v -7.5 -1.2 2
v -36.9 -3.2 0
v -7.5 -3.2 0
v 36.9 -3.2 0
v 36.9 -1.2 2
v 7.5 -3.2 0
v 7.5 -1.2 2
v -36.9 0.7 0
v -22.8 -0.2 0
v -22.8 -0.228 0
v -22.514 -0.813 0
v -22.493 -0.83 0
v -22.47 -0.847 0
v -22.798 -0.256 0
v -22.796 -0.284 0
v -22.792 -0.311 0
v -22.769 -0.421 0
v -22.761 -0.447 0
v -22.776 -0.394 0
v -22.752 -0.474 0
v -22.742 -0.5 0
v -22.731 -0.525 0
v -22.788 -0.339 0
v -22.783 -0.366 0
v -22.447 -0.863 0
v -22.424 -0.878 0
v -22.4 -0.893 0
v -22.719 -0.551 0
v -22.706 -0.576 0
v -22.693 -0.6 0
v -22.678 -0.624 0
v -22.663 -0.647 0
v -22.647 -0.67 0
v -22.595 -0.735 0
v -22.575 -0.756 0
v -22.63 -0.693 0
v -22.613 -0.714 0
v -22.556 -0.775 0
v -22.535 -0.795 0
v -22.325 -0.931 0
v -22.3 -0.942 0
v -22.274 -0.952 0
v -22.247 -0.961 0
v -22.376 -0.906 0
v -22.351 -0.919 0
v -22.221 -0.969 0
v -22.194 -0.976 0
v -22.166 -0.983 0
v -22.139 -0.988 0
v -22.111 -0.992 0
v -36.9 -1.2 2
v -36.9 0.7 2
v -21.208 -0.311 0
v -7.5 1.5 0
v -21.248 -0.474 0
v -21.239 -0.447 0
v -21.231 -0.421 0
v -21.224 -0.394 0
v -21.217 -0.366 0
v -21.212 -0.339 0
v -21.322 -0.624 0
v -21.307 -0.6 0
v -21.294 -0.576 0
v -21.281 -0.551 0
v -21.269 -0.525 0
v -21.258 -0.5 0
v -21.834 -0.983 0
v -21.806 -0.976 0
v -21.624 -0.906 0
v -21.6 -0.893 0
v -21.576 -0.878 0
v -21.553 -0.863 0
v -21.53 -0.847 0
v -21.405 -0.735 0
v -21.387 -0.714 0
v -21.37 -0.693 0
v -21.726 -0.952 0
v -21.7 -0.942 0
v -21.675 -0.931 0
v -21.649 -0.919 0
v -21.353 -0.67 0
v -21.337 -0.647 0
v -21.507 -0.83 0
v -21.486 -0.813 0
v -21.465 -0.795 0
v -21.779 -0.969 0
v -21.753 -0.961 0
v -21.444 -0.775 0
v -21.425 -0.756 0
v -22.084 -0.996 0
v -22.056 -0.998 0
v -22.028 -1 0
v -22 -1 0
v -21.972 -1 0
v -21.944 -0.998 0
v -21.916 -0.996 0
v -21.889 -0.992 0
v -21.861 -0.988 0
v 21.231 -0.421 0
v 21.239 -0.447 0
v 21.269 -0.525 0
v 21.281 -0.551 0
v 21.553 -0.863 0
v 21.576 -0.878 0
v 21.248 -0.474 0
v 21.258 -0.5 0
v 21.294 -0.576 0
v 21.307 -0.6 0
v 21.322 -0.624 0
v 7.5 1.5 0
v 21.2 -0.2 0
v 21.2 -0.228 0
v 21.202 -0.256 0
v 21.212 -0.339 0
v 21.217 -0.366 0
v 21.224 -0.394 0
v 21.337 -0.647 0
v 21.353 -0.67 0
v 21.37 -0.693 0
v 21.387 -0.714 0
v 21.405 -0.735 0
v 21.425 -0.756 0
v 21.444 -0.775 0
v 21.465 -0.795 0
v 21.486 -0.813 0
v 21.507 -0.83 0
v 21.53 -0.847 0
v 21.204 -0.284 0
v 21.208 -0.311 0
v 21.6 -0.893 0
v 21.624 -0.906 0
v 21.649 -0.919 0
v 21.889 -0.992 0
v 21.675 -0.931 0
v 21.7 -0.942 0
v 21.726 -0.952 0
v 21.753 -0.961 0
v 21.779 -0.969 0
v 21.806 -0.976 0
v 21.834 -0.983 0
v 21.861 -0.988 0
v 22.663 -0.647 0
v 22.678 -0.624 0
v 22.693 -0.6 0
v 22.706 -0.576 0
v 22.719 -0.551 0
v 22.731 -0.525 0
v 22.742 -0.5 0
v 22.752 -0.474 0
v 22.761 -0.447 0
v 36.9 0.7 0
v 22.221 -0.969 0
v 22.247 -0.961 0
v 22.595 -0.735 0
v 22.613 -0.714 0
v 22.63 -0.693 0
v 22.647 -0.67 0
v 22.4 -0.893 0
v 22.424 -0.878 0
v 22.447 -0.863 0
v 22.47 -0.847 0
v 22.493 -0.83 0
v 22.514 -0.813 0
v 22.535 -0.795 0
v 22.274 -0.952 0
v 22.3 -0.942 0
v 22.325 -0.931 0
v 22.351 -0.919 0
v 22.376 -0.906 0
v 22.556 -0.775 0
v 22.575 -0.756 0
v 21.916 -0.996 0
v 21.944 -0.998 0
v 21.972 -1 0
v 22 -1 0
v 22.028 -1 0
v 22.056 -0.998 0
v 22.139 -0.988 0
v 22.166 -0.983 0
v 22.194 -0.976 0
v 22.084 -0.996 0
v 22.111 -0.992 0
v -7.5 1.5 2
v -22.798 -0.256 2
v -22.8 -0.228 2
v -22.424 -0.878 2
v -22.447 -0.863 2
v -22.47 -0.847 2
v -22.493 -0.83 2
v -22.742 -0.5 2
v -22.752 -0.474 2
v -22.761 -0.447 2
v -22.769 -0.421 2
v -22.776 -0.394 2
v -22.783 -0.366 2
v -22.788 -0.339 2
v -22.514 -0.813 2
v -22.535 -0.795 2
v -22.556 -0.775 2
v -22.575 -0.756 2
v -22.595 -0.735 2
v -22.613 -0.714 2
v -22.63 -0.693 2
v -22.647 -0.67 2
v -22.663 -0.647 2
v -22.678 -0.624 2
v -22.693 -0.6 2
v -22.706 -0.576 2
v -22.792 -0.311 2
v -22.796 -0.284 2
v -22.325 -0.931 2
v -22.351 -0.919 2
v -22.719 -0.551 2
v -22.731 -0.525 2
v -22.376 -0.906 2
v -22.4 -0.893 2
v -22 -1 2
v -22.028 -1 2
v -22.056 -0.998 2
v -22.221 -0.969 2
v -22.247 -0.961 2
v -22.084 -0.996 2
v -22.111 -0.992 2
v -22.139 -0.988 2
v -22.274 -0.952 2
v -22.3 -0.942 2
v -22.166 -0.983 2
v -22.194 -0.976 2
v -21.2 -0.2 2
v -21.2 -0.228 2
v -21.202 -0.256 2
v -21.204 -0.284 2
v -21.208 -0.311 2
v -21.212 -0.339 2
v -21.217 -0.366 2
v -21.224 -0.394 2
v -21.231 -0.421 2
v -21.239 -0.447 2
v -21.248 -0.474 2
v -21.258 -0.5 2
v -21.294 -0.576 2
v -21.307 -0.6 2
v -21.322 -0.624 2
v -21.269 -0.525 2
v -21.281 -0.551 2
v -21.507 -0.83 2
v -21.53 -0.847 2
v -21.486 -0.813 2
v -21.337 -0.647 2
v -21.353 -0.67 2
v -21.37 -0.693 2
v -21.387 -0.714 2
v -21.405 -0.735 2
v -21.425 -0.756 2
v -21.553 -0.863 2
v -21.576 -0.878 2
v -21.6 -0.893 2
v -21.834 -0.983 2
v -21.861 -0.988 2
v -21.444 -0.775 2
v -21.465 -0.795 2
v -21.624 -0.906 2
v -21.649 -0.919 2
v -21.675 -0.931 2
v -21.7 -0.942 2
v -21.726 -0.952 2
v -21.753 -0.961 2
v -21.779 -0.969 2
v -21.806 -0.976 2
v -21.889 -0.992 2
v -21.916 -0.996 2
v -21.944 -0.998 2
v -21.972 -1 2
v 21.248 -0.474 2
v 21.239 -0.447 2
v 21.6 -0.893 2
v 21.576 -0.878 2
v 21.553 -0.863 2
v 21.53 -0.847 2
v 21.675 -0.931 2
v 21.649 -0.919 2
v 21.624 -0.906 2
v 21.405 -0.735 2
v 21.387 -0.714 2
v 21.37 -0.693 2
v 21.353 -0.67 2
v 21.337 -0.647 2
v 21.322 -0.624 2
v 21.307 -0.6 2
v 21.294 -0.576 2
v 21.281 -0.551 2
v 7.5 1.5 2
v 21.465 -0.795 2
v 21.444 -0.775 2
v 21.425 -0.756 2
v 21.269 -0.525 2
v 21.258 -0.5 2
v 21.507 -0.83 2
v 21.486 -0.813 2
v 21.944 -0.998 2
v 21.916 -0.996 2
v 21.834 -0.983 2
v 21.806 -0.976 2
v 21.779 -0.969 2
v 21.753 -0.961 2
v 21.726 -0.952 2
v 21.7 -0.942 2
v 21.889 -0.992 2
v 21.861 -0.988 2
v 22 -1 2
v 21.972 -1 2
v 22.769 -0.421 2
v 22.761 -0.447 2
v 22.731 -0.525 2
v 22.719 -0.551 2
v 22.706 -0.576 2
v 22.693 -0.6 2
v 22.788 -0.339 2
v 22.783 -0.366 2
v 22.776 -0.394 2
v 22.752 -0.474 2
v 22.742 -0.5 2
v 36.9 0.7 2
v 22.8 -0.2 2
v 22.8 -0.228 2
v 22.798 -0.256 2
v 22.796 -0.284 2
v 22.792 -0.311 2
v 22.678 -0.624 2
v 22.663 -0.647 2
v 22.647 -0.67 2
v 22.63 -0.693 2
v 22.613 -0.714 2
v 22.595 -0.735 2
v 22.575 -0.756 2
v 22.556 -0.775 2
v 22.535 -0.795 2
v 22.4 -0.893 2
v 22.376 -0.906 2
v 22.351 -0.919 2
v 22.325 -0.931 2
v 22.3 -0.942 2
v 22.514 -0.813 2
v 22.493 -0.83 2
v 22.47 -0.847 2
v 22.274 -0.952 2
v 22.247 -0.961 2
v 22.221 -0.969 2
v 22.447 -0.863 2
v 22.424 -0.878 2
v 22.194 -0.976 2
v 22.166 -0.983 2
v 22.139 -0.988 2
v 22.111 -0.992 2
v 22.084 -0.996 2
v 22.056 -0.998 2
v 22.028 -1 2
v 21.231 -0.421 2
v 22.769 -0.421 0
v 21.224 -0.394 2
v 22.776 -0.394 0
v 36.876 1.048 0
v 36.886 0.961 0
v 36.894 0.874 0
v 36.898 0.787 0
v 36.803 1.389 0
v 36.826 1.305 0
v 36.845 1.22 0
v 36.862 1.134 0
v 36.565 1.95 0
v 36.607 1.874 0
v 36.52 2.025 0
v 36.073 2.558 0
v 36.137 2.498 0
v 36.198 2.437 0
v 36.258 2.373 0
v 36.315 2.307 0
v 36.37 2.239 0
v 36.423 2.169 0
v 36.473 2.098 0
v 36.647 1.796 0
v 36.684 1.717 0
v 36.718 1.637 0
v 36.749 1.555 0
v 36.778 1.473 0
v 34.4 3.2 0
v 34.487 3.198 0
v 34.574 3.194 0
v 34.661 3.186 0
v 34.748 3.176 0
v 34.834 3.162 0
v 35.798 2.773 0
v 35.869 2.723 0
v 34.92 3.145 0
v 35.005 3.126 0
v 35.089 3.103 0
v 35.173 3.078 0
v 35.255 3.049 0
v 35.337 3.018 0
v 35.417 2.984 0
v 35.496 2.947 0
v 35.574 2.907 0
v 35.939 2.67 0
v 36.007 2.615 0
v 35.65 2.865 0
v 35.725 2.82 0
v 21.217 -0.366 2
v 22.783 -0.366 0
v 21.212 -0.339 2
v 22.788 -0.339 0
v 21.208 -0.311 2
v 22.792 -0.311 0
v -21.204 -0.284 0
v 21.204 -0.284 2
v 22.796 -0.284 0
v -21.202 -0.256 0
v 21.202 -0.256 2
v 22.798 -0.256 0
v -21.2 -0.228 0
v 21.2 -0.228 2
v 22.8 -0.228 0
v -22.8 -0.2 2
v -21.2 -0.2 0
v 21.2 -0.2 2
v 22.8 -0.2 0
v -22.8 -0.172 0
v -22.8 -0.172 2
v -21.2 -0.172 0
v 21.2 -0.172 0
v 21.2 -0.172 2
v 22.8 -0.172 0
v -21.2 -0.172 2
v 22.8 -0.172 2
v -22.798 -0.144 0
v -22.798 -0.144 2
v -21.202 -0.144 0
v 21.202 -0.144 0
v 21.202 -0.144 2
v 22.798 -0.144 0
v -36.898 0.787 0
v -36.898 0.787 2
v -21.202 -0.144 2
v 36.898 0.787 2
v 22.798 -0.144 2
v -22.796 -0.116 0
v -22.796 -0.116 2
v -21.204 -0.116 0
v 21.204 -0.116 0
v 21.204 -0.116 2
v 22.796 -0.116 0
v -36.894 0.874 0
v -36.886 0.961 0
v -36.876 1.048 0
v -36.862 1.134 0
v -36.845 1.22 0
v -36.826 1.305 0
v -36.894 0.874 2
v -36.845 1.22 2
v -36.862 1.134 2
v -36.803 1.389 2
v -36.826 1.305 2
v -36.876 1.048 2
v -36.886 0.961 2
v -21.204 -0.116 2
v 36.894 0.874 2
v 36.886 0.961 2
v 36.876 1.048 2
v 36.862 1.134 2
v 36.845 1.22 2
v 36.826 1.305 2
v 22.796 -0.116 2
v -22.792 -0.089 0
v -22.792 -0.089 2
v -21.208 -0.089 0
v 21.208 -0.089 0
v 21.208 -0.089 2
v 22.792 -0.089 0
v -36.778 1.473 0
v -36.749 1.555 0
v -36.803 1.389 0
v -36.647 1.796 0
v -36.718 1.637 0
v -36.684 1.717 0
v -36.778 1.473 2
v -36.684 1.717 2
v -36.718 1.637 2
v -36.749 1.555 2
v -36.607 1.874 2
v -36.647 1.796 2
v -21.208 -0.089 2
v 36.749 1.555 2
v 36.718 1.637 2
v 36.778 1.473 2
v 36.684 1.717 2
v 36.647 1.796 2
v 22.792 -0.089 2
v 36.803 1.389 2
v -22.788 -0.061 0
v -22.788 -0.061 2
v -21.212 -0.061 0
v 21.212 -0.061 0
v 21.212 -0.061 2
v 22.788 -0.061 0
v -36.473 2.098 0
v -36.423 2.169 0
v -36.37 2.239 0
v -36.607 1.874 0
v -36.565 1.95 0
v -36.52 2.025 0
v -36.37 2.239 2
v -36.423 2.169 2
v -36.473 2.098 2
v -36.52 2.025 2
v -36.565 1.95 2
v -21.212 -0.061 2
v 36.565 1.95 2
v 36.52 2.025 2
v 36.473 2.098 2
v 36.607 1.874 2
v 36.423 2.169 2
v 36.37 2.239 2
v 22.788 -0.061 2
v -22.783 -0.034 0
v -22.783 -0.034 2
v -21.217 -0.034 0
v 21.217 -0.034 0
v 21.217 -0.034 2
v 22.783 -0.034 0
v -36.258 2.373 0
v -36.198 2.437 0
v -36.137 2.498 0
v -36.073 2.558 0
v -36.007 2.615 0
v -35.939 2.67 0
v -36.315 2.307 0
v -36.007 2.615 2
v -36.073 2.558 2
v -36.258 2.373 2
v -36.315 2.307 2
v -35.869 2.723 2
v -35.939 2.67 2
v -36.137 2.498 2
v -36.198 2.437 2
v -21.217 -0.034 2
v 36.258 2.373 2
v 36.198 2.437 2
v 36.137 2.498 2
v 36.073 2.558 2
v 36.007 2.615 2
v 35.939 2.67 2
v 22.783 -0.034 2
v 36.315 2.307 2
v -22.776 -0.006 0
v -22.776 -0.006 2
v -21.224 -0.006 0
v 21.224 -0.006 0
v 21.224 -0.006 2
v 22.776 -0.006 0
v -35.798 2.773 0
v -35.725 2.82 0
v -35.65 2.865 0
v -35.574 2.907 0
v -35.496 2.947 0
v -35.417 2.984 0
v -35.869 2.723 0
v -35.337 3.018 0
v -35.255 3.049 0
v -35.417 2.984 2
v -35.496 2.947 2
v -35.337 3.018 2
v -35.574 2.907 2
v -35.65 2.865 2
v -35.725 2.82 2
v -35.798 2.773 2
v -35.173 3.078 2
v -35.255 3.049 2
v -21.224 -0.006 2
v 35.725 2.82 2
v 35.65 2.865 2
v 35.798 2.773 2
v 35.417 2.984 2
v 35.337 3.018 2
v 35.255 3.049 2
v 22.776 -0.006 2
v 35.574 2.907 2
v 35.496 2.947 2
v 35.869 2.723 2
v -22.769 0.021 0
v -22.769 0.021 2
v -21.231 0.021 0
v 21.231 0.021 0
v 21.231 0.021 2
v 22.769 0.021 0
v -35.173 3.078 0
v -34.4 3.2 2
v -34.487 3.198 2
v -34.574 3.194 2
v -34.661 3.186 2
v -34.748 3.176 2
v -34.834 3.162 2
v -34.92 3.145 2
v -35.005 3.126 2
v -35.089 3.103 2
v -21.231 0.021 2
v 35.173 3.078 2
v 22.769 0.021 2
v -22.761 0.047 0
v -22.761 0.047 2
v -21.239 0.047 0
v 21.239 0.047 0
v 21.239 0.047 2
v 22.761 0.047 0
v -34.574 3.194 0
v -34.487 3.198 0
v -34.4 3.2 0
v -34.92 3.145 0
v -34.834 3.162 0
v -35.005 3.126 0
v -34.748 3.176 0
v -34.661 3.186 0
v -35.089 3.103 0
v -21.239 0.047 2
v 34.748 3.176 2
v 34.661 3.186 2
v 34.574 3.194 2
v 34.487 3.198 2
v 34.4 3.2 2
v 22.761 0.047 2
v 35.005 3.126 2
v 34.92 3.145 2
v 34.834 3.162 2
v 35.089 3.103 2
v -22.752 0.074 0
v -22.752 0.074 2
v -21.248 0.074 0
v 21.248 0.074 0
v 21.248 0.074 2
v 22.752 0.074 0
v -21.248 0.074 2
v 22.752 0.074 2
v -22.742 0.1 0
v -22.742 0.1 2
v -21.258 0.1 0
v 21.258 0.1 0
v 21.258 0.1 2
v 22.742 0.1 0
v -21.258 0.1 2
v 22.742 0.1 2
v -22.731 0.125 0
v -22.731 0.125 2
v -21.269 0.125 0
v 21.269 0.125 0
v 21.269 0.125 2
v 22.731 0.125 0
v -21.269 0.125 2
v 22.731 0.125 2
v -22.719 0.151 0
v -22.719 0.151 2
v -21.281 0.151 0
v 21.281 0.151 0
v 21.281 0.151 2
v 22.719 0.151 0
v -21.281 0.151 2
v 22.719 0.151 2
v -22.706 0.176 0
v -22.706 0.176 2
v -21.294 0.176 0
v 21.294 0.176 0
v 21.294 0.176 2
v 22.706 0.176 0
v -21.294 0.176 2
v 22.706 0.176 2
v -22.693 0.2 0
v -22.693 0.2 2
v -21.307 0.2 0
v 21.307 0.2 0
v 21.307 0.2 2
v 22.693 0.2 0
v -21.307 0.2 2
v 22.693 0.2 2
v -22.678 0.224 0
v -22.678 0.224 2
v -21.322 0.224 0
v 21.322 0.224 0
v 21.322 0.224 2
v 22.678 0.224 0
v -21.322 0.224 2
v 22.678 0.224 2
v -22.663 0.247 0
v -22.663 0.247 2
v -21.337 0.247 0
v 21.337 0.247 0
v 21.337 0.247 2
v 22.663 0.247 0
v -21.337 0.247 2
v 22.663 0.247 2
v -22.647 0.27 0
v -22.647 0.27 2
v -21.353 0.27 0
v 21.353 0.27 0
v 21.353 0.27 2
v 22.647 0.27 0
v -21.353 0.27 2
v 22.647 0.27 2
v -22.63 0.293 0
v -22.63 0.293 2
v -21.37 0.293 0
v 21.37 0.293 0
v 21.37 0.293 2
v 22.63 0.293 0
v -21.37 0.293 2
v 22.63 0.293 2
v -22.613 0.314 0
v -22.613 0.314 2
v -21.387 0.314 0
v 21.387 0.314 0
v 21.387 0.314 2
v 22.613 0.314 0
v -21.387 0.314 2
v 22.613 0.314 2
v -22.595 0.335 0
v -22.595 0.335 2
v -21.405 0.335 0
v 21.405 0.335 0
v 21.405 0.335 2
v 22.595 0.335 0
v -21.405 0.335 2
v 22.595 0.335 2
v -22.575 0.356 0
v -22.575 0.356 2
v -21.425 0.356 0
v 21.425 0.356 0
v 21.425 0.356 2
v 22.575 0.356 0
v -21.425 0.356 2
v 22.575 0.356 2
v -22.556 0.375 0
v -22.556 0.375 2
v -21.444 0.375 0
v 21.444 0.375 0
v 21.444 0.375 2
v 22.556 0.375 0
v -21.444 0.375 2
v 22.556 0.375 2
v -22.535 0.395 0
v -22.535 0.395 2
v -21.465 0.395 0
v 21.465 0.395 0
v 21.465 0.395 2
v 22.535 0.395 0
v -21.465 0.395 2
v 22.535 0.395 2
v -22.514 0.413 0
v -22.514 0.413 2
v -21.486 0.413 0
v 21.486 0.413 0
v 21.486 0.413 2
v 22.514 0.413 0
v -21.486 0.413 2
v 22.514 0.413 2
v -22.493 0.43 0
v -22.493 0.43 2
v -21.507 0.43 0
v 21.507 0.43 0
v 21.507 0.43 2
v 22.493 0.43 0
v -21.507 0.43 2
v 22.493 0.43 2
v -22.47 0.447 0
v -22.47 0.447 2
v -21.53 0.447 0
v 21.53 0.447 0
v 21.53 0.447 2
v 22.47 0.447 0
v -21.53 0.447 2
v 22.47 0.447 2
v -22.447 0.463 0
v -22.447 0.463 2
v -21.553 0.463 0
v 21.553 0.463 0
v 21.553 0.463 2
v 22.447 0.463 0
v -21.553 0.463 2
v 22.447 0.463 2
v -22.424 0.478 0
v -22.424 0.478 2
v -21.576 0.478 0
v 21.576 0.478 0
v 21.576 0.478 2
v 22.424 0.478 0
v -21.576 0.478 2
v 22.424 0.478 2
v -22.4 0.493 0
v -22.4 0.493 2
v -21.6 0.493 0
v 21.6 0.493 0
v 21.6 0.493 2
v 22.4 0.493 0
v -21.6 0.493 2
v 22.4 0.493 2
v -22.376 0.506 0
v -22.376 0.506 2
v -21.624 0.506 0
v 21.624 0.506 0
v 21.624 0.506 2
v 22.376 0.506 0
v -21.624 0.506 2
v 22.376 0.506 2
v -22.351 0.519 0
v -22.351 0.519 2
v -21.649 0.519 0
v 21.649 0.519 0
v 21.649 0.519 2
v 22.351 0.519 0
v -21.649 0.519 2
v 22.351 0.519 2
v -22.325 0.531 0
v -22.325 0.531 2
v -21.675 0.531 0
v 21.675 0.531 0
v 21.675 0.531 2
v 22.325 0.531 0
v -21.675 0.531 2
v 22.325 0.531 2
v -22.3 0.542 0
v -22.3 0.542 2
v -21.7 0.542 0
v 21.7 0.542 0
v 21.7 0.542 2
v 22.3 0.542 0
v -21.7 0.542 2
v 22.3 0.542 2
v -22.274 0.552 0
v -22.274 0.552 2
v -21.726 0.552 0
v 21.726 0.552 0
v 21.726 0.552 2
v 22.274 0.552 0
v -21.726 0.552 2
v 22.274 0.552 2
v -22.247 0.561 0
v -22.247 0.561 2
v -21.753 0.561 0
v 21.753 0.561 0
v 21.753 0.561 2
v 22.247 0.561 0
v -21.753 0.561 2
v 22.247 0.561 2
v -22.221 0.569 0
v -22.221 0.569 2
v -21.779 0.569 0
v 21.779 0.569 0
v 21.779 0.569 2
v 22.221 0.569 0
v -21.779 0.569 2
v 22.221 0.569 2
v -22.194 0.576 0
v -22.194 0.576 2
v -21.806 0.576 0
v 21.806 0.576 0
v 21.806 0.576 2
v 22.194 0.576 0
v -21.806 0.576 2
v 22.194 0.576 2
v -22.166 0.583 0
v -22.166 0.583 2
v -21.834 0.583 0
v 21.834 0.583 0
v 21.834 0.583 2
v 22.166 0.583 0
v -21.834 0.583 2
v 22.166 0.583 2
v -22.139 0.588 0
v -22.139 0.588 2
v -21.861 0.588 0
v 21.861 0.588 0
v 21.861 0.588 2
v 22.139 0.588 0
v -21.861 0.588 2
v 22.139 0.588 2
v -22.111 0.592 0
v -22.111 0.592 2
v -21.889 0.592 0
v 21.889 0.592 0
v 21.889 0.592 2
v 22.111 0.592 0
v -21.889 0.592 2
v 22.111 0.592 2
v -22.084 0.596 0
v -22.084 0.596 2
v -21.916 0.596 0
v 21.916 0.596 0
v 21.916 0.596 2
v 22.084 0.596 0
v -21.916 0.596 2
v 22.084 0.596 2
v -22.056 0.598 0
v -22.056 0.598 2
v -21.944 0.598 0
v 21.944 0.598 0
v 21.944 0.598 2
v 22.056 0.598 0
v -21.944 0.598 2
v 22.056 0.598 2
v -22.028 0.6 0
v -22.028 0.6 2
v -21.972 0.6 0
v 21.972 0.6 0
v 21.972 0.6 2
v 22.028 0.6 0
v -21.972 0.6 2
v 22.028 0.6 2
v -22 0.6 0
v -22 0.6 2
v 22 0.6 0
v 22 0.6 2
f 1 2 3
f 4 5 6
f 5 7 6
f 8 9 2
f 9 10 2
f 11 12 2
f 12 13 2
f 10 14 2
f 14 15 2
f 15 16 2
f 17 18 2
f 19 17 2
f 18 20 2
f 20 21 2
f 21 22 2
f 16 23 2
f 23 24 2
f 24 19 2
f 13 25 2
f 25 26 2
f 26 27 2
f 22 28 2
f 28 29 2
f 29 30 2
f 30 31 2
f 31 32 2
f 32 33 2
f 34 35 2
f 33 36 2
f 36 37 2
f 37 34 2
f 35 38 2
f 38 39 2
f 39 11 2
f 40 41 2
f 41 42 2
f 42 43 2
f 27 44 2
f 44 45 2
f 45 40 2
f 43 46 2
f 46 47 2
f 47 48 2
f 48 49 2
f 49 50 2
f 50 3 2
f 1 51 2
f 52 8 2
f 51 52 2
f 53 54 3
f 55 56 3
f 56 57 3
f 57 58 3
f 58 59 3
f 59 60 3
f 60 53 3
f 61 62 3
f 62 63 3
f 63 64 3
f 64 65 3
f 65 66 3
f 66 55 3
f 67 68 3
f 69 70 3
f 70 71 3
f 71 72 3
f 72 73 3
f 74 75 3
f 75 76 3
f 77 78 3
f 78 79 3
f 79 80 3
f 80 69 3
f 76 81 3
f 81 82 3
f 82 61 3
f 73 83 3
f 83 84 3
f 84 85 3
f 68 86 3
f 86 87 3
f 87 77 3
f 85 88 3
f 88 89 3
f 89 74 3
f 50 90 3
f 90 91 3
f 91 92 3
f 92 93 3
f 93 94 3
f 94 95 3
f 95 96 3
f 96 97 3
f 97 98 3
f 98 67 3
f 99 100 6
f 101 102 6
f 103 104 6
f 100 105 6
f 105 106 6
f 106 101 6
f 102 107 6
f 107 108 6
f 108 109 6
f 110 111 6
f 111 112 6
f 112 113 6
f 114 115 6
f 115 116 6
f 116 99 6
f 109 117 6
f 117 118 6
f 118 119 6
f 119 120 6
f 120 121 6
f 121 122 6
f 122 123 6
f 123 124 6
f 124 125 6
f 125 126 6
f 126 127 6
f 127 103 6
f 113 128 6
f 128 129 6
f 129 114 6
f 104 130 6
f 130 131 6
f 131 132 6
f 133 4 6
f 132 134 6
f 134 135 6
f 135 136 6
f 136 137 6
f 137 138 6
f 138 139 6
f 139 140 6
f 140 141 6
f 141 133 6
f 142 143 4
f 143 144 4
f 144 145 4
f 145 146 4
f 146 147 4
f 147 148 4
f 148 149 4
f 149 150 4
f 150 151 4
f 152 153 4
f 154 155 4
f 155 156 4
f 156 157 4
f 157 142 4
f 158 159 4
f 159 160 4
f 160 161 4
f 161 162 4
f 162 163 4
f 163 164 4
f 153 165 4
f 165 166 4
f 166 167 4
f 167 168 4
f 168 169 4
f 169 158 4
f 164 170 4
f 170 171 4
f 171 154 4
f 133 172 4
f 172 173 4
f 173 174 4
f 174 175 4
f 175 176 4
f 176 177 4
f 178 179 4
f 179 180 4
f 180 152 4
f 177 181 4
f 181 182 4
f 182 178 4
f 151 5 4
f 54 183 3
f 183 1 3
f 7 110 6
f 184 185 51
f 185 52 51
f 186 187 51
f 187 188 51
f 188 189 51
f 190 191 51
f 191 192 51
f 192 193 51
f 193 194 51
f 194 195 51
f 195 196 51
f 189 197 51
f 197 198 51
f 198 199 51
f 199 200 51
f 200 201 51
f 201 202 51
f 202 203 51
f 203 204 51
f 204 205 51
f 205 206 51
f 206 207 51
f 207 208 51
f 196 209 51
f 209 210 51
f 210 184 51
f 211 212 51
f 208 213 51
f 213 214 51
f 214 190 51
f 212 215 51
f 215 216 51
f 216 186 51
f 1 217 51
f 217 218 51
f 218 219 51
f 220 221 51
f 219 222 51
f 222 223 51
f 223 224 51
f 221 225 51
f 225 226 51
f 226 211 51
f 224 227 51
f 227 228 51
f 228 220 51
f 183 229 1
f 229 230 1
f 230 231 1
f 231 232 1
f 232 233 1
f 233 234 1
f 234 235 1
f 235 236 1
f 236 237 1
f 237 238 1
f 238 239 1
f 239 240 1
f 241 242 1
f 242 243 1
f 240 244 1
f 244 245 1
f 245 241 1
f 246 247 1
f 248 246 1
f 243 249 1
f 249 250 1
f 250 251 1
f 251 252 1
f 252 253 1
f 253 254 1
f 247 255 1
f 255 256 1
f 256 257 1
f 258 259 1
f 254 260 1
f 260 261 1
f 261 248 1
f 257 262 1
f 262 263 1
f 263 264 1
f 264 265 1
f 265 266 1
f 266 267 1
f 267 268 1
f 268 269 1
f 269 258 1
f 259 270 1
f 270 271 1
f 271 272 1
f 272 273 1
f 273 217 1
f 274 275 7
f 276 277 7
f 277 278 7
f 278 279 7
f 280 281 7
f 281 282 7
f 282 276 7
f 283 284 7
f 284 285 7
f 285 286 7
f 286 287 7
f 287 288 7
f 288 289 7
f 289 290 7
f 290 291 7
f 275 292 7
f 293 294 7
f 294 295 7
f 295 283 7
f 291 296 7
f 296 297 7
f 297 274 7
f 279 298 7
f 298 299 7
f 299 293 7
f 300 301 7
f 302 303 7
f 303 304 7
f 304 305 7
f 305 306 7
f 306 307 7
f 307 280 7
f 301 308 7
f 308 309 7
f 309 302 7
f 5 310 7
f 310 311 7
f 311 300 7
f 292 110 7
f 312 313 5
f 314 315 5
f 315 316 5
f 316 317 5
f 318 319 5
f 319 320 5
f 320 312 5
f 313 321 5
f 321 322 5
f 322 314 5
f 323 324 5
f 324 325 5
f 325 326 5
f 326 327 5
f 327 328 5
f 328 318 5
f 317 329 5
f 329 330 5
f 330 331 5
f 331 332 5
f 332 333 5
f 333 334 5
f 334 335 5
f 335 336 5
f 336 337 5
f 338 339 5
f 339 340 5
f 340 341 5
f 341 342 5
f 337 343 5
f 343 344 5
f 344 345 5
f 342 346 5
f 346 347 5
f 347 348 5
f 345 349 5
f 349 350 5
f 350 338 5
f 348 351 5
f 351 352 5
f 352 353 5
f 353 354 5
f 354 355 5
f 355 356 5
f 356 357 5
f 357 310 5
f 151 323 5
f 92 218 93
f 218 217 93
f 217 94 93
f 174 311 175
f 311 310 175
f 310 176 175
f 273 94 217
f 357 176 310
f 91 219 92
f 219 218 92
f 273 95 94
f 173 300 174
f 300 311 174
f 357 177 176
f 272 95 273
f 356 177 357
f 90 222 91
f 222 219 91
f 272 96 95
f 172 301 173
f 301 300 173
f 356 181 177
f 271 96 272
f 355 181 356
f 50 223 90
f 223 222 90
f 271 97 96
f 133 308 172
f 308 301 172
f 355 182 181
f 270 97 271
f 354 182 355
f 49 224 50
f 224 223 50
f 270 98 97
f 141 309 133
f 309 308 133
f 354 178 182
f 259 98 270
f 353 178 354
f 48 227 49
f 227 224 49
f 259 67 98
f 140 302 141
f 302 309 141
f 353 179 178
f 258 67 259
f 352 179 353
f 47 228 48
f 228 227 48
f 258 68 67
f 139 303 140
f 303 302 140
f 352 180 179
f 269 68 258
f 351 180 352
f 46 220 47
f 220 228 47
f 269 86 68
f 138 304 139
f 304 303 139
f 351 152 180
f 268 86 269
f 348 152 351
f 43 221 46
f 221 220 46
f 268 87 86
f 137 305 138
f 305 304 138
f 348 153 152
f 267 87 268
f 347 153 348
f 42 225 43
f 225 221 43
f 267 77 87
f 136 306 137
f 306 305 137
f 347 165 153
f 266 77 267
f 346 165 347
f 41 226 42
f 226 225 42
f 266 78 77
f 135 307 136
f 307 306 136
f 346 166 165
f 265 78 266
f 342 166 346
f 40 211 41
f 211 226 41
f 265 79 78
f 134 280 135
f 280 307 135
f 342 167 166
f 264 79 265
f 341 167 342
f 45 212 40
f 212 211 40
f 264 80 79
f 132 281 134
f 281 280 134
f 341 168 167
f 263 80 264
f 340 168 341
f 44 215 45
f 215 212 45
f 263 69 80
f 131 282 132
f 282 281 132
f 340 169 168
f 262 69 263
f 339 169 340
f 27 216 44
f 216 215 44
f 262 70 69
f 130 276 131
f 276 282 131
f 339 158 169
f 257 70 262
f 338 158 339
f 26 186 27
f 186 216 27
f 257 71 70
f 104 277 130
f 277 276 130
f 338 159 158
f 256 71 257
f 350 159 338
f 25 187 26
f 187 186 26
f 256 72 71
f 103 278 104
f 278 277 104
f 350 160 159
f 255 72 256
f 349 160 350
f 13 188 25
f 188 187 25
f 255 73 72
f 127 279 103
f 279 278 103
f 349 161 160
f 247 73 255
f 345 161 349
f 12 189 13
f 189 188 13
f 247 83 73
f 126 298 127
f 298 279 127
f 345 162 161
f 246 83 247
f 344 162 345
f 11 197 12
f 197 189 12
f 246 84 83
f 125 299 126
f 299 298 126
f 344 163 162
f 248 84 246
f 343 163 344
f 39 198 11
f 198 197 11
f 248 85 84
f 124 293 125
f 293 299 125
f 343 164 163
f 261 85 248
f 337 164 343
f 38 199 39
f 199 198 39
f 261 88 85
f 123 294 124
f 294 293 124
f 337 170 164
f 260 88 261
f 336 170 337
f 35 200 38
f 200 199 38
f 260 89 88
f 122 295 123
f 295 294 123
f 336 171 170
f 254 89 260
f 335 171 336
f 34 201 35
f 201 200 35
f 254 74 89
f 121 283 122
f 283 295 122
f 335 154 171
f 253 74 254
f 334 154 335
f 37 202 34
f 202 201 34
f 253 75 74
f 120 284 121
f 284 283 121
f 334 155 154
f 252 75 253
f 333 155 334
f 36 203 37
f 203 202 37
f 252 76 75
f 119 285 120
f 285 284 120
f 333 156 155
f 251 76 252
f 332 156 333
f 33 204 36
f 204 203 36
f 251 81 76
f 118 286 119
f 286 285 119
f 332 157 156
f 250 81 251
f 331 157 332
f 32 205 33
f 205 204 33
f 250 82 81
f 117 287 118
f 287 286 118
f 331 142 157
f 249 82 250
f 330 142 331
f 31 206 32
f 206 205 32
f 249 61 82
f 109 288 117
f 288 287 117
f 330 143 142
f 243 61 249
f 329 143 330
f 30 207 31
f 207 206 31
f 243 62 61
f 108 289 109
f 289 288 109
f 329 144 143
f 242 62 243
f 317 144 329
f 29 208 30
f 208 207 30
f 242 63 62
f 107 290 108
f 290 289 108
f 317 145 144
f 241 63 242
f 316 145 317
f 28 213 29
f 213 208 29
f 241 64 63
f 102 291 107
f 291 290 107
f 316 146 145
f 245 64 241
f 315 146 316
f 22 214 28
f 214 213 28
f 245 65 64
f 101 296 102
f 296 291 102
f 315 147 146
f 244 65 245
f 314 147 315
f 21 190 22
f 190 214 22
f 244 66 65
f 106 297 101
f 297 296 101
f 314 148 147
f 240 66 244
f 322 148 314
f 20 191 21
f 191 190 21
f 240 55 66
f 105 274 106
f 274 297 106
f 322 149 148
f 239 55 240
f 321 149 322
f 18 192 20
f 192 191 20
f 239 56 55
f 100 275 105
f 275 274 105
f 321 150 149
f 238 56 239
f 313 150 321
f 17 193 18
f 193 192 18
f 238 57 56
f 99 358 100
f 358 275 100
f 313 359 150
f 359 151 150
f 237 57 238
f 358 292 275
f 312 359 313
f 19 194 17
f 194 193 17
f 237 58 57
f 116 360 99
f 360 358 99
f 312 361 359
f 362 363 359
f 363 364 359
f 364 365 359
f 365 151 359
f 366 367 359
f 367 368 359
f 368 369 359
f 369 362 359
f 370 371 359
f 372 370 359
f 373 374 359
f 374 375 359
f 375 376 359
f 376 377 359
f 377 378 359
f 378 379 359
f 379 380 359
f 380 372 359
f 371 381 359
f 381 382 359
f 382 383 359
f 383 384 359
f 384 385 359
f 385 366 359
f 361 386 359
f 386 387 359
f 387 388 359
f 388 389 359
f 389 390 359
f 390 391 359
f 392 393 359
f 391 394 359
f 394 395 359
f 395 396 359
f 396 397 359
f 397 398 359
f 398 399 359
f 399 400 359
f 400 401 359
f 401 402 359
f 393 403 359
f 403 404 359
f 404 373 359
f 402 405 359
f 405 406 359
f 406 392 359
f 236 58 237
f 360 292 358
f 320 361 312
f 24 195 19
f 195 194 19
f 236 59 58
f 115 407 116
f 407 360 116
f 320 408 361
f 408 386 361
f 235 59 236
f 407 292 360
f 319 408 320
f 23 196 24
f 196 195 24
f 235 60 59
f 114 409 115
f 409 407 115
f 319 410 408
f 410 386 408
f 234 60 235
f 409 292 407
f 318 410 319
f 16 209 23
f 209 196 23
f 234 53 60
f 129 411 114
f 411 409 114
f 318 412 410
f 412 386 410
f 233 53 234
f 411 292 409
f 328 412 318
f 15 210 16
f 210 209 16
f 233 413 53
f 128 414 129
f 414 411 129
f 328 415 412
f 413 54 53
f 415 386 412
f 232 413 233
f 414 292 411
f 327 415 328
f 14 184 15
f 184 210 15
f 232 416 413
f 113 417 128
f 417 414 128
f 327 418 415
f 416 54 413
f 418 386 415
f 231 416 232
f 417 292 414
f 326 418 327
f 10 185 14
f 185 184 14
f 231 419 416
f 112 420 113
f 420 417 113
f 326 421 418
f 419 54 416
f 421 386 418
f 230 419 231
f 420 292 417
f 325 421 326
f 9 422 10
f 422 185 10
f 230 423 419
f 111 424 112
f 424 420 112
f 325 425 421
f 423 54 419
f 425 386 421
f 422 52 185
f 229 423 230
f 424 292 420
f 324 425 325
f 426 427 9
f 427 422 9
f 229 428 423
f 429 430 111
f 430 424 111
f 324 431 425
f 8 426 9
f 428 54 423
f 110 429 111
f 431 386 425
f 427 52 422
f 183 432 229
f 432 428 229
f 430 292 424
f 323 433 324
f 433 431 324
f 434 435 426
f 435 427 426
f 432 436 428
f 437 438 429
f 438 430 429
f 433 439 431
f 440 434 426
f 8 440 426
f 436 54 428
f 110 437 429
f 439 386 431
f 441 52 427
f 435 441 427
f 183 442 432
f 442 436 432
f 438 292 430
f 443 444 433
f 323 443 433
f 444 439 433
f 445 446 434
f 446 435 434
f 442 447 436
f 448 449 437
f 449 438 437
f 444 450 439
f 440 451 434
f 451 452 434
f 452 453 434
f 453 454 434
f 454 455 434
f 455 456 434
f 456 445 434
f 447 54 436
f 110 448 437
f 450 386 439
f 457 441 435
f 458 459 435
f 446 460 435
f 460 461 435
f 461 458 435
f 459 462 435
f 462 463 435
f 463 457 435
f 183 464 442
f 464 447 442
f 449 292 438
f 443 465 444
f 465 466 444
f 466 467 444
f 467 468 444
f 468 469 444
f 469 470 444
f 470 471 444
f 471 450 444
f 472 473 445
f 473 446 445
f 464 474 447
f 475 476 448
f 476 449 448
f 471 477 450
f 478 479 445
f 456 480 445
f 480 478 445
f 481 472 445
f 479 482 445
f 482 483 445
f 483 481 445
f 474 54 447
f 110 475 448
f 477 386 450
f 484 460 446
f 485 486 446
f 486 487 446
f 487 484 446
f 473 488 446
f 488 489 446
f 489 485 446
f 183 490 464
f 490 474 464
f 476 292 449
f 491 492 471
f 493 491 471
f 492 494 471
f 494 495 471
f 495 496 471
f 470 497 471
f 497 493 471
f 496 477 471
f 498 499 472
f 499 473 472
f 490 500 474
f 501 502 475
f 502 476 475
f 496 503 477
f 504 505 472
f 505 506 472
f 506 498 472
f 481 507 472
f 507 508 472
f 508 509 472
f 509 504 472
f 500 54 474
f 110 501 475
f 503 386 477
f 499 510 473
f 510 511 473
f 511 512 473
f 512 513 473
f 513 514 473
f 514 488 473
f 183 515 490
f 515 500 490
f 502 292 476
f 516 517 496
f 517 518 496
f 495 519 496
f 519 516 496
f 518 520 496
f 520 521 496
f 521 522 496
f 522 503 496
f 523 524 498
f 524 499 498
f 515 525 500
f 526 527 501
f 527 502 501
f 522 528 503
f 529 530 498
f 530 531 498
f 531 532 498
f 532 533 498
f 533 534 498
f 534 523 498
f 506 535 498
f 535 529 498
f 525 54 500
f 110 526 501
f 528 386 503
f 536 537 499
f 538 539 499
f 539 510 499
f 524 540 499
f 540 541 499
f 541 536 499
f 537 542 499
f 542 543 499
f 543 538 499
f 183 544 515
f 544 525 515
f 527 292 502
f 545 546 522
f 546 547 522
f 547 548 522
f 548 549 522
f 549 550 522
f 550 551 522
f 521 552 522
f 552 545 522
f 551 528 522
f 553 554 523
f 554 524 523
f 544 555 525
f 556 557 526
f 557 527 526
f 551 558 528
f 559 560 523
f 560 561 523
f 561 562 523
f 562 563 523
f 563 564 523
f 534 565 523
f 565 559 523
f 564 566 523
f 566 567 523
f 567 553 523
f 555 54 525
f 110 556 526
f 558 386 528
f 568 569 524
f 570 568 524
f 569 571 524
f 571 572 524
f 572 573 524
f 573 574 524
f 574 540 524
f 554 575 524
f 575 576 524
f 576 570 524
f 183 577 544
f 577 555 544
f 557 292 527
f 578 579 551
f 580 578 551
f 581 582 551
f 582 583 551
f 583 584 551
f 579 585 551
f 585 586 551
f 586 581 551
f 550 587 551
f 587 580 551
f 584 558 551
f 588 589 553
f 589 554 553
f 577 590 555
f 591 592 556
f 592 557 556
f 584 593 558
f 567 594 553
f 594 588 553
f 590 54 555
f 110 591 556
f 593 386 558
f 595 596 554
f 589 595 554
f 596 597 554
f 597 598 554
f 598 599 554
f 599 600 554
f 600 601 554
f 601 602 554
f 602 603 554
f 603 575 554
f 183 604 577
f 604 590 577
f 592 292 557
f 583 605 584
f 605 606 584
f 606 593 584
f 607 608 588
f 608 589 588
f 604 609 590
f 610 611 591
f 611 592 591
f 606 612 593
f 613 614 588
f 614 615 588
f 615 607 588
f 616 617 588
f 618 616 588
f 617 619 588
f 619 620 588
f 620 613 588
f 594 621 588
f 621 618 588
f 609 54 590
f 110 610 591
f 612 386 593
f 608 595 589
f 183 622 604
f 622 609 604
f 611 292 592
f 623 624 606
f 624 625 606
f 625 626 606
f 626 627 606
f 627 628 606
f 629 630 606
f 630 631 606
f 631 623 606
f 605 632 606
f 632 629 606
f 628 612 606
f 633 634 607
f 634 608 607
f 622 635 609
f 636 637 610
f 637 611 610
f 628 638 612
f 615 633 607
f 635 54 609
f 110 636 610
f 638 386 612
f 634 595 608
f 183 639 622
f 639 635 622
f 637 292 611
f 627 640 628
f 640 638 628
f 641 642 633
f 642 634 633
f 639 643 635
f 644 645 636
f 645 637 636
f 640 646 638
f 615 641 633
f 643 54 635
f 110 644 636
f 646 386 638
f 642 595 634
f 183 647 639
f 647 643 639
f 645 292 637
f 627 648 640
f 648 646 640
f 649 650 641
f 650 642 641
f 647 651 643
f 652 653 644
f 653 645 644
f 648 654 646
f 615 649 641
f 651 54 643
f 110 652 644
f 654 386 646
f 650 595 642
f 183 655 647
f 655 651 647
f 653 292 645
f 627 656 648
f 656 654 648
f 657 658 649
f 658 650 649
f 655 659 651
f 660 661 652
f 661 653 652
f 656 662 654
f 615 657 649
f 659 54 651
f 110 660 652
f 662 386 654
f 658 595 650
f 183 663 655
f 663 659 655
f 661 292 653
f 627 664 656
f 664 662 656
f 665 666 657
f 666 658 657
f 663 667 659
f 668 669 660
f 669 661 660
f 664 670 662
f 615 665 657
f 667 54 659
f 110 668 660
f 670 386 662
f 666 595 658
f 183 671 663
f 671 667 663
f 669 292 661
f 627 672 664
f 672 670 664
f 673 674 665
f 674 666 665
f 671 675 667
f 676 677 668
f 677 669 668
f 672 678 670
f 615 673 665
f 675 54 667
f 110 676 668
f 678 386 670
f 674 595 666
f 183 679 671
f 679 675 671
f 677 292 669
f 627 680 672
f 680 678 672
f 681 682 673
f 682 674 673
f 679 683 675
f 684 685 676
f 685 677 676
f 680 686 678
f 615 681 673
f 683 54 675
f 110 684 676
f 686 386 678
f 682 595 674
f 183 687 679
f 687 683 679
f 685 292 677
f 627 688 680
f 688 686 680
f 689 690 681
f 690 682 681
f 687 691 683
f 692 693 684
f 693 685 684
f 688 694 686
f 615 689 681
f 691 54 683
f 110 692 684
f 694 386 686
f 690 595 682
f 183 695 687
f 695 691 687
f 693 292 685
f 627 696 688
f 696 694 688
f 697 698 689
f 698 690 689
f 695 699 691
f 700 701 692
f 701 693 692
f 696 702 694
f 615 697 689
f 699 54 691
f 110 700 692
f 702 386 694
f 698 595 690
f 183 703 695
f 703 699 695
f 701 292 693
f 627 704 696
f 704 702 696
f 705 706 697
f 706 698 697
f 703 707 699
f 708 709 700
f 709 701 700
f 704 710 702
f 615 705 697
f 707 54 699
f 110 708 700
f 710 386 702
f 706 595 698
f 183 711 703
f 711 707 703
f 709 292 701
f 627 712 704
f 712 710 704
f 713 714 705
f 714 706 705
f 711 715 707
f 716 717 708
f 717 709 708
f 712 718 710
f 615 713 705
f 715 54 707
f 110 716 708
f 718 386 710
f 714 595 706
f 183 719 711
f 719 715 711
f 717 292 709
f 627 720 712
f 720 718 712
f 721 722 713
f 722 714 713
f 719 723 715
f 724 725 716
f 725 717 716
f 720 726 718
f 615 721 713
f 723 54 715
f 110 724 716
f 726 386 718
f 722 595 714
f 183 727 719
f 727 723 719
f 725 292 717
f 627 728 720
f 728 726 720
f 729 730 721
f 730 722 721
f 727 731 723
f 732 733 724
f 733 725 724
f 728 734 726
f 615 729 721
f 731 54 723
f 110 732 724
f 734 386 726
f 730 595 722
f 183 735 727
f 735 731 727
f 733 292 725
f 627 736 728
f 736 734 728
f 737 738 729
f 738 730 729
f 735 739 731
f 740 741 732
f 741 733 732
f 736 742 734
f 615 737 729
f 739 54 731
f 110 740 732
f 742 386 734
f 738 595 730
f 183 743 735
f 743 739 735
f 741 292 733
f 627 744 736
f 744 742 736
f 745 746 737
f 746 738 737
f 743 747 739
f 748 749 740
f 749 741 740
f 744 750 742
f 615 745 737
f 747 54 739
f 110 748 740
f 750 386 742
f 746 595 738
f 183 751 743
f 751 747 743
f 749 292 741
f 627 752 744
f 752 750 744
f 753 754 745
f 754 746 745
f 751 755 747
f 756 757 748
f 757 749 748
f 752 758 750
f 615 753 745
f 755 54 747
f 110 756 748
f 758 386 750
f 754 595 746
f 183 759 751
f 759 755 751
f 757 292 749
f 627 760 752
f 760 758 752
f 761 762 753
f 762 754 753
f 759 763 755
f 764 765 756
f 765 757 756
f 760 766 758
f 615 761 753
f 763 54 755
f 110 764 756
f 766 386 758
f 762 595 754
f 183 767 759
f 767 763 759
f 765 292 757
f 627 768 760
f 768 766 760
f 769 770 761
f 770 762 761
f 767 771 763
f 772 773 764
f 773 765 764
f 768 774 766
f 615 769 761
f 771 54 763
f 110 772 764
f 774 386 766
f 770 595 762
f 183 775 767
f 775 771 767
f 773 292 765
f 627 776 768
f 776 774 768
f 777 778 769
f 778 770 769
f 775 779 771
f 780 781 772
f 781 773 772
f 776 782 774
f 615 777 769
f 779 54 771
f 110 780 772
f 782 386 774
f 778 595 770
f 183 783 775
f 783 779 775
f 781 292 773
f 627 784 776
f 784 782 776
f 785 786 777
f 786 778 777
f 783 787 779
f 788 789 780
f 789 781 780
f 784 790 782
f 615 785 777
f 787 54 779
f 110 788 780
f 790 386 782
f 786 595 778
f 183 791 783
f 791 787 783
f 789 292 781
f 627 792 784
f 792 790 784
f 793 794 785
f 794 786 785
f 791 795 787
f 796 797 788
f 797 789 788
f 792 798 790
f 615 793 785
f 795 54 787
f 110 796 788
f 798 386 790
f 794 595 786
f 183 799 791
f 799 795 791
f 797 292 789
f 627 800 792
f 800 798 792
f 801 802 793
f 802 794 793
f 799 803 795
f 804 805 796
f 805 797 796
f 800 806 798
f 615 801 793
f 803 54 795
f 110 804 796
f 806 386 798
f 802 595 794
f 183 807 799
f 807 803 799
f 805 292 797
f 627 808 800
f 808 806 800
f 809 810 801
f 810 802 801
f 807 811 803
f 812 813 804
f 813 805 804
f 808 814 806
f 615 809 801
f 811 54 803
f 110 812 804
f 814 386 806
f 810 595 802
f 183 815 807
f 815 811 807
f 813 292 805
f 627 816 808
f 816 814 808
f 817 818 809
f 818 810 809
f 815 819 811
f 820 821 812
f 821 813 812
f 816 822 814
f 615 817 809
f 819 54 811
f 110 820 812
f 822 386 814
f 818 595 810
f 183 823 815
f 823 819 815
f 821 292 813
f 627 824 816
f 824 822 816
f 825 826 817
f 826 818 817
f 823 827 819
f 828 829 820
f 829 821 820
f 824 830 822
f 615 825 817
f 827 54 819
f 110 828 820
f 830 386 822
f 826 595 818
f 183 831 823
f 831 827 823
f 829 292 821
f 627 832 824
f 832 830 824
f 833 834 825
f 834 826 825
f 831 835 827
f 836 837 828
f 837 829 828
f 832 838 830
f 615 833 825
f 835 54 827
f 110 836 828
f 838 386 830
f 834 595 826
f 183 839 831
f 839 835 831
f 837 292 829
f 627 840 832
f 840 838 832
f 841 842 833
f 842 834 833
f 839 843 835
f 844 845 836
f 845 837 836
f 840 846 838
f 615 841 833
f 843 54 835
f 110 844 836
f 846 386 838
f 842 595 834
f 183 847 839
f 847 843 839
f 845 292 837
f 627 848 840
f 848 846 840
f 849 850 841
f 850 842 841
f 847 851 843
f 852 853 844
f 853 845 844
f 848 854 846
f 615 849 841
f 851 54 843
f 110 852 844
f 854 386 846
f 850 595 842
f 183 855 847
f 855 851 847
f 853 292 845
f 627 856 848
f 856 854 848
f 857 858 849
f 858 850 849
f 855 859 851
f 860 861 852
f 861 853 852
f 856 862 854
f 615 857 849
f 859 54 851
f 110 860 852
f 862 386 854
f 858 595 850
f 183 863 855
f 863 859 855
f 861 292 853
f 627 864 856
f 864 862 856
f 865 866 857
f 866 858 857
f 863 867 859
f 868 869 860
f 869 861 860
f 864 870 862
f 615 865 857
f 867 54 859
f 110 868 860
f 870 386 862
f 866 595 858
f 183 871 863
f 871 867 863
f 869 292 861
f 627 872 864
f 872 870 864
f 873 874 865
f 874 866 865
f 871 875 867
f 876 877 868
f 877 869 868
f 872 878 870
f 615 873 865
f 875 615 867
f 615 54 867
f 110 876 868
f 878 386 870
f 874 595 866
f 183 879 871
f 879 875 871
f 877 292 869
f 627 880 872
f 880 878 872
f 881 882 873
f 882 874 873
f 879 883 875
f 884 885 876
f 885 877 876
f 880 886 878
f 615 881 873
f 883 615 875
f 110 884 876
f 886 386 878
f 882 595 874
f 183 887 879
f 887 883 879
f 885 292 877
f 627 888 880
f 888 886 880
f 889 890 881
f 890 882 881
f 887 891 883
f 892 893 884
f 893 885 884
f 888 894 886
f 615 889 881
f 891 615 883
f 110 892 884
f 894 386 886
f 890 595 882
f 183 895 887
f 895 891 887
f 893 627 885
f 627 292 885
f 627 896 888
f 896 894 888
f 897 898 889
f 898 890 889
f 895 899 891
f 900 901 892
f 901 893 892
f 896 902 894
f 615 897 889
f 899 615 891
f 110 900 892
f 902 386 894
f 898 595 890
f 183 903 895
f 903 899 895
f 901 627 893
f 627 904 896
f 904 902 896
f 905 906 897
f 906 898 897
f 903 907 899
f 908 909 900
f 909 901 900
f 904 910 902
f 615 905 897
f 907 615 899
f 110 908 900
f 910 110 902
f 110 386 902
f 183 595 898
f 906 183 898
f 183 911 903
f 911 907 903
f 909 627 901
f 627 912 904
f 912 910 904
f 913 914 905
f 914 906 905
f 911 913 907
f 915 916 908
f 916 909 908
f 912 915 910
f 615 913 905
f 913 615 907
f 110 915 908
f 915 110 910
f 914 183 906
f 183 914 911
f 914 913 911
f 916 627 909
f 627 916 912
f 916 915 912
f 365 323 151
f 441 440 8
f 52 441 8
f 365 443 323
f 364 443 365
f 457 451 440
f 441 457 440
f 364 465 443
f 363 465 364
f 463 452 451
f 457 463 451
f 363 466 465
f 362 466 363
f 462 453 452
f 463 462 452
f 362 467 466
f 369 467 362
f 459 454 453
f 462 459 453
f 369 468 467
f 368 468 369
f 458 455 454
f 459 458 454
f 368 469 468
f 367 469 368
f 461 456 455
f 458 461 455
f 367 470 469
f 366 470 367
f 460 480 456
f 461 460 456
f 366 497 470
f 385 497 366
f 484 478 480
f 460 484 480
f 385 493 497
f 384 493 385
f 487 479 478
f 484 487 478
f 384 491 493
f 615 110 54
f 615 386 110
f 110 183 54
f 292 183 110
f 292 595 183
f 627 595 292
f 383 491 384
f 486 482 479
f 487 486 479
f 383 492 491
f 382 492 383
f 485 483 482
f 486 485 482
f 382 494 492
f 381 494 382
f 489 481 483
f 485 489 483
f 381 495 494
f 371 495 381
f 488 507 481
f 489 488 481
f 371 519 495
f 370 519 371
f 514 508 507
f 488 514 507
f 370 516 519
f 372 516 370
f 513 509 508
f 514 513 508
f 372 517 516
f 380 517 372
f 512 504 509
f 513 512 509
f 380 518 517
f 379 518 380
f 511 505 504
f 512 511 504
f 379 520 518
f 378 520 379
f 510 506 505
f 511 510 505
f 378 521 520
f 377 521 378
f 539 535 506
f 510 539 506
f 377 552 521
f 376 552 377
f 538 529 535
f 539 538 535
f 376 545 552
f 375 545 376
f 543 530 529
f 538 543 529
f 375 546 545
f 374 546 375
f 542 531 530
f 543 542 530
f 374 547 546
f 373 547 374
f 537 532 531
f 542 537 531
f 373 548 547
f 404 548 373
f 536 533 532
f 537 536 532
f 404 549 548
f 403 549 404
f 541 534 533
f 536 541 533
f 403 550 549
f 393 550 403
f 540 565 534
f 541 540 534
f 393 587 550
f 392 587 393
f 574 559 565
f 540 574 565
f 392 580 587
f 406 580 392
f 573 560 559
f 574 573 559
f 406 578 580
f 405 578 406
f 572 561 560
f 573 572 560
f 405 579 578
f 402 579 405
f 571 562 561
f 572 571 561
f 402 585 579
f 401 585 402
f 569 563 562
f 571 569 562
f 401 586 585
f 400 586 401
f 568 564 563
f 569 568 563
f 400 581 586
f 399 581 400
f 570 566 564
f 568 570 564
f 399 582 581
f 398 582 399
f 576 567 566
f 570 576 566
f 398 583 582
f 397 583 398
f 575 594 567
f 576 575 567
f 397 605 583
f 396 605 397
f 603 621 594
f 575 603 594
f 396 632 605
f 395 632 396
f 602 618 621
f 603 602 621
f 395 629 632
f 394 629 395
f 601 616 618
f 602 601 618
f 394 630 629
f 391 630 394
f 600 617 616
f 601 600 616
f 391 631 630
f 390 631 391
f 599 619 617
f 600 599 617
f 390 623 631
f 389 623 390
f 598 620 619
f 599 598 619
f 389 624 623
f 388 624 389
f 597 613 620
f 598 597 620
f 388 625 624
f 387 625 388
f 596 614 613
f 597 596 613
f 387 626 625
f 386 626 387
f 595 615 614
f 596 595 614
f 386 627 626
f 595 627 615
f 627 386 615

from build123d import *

# Parameters (mm, degrees)
BOSS_EXTRUDE1_DEPTH   = 36.9
M2X0_4_TAPPED_HOLE1_D = 1.6
SKETCH4_W             = 15
SKETCH4_H             = 4.7
CUT_EXTRUDE4_DEPTH    = 38.092452062
FILLET3_R             = 2.5


with BuildPart() as part:
    # Sketch1 → Boss-Extrude1 (new, symmetric)
    with BuildSketch(Plane(origin=(0, 0, 0), x_dir=(0, 0, -1), z_dir=(1, 0, 0))):
        Polygon((0, -3.2), (-2, -1.2), (-2, 3.2), (0, 3.2), align=None)
    extrude(amount=BOSS_EXTRUDE1_DEPTH, both=True)

    # M2x0.4 Tapped Hole1 (through all)
    with Locations(Plane.XY.offset(2)):
        with Locations((22, -0.2), (0, -0.2), (-22, -0.2)):
            Hole(M2X0_4_TAPPED_HOLE1_D / 2)

    # Sketch4 → Cut-Extrude4 (cut, through all)
    with BuildSketch(Plane.XY):
        with Locations((0, -0.85)):
            Rectangle(SKETCH4_W, SKETCH4_H)
    extrude(amount=CUT_EXTRUDE4_DEPTH, mode=Mode.SUBTRACT)

    # Fillet3
    fillet3_edges = [part.edges().sort_by_distance(p)[0] for p in [
        (-36.9, 3.2, 1),
        (36.9, 3.2, 1),
    ]]
    fillet(fillet3_edges, radius=FILLET3_R)


solid = part.part
